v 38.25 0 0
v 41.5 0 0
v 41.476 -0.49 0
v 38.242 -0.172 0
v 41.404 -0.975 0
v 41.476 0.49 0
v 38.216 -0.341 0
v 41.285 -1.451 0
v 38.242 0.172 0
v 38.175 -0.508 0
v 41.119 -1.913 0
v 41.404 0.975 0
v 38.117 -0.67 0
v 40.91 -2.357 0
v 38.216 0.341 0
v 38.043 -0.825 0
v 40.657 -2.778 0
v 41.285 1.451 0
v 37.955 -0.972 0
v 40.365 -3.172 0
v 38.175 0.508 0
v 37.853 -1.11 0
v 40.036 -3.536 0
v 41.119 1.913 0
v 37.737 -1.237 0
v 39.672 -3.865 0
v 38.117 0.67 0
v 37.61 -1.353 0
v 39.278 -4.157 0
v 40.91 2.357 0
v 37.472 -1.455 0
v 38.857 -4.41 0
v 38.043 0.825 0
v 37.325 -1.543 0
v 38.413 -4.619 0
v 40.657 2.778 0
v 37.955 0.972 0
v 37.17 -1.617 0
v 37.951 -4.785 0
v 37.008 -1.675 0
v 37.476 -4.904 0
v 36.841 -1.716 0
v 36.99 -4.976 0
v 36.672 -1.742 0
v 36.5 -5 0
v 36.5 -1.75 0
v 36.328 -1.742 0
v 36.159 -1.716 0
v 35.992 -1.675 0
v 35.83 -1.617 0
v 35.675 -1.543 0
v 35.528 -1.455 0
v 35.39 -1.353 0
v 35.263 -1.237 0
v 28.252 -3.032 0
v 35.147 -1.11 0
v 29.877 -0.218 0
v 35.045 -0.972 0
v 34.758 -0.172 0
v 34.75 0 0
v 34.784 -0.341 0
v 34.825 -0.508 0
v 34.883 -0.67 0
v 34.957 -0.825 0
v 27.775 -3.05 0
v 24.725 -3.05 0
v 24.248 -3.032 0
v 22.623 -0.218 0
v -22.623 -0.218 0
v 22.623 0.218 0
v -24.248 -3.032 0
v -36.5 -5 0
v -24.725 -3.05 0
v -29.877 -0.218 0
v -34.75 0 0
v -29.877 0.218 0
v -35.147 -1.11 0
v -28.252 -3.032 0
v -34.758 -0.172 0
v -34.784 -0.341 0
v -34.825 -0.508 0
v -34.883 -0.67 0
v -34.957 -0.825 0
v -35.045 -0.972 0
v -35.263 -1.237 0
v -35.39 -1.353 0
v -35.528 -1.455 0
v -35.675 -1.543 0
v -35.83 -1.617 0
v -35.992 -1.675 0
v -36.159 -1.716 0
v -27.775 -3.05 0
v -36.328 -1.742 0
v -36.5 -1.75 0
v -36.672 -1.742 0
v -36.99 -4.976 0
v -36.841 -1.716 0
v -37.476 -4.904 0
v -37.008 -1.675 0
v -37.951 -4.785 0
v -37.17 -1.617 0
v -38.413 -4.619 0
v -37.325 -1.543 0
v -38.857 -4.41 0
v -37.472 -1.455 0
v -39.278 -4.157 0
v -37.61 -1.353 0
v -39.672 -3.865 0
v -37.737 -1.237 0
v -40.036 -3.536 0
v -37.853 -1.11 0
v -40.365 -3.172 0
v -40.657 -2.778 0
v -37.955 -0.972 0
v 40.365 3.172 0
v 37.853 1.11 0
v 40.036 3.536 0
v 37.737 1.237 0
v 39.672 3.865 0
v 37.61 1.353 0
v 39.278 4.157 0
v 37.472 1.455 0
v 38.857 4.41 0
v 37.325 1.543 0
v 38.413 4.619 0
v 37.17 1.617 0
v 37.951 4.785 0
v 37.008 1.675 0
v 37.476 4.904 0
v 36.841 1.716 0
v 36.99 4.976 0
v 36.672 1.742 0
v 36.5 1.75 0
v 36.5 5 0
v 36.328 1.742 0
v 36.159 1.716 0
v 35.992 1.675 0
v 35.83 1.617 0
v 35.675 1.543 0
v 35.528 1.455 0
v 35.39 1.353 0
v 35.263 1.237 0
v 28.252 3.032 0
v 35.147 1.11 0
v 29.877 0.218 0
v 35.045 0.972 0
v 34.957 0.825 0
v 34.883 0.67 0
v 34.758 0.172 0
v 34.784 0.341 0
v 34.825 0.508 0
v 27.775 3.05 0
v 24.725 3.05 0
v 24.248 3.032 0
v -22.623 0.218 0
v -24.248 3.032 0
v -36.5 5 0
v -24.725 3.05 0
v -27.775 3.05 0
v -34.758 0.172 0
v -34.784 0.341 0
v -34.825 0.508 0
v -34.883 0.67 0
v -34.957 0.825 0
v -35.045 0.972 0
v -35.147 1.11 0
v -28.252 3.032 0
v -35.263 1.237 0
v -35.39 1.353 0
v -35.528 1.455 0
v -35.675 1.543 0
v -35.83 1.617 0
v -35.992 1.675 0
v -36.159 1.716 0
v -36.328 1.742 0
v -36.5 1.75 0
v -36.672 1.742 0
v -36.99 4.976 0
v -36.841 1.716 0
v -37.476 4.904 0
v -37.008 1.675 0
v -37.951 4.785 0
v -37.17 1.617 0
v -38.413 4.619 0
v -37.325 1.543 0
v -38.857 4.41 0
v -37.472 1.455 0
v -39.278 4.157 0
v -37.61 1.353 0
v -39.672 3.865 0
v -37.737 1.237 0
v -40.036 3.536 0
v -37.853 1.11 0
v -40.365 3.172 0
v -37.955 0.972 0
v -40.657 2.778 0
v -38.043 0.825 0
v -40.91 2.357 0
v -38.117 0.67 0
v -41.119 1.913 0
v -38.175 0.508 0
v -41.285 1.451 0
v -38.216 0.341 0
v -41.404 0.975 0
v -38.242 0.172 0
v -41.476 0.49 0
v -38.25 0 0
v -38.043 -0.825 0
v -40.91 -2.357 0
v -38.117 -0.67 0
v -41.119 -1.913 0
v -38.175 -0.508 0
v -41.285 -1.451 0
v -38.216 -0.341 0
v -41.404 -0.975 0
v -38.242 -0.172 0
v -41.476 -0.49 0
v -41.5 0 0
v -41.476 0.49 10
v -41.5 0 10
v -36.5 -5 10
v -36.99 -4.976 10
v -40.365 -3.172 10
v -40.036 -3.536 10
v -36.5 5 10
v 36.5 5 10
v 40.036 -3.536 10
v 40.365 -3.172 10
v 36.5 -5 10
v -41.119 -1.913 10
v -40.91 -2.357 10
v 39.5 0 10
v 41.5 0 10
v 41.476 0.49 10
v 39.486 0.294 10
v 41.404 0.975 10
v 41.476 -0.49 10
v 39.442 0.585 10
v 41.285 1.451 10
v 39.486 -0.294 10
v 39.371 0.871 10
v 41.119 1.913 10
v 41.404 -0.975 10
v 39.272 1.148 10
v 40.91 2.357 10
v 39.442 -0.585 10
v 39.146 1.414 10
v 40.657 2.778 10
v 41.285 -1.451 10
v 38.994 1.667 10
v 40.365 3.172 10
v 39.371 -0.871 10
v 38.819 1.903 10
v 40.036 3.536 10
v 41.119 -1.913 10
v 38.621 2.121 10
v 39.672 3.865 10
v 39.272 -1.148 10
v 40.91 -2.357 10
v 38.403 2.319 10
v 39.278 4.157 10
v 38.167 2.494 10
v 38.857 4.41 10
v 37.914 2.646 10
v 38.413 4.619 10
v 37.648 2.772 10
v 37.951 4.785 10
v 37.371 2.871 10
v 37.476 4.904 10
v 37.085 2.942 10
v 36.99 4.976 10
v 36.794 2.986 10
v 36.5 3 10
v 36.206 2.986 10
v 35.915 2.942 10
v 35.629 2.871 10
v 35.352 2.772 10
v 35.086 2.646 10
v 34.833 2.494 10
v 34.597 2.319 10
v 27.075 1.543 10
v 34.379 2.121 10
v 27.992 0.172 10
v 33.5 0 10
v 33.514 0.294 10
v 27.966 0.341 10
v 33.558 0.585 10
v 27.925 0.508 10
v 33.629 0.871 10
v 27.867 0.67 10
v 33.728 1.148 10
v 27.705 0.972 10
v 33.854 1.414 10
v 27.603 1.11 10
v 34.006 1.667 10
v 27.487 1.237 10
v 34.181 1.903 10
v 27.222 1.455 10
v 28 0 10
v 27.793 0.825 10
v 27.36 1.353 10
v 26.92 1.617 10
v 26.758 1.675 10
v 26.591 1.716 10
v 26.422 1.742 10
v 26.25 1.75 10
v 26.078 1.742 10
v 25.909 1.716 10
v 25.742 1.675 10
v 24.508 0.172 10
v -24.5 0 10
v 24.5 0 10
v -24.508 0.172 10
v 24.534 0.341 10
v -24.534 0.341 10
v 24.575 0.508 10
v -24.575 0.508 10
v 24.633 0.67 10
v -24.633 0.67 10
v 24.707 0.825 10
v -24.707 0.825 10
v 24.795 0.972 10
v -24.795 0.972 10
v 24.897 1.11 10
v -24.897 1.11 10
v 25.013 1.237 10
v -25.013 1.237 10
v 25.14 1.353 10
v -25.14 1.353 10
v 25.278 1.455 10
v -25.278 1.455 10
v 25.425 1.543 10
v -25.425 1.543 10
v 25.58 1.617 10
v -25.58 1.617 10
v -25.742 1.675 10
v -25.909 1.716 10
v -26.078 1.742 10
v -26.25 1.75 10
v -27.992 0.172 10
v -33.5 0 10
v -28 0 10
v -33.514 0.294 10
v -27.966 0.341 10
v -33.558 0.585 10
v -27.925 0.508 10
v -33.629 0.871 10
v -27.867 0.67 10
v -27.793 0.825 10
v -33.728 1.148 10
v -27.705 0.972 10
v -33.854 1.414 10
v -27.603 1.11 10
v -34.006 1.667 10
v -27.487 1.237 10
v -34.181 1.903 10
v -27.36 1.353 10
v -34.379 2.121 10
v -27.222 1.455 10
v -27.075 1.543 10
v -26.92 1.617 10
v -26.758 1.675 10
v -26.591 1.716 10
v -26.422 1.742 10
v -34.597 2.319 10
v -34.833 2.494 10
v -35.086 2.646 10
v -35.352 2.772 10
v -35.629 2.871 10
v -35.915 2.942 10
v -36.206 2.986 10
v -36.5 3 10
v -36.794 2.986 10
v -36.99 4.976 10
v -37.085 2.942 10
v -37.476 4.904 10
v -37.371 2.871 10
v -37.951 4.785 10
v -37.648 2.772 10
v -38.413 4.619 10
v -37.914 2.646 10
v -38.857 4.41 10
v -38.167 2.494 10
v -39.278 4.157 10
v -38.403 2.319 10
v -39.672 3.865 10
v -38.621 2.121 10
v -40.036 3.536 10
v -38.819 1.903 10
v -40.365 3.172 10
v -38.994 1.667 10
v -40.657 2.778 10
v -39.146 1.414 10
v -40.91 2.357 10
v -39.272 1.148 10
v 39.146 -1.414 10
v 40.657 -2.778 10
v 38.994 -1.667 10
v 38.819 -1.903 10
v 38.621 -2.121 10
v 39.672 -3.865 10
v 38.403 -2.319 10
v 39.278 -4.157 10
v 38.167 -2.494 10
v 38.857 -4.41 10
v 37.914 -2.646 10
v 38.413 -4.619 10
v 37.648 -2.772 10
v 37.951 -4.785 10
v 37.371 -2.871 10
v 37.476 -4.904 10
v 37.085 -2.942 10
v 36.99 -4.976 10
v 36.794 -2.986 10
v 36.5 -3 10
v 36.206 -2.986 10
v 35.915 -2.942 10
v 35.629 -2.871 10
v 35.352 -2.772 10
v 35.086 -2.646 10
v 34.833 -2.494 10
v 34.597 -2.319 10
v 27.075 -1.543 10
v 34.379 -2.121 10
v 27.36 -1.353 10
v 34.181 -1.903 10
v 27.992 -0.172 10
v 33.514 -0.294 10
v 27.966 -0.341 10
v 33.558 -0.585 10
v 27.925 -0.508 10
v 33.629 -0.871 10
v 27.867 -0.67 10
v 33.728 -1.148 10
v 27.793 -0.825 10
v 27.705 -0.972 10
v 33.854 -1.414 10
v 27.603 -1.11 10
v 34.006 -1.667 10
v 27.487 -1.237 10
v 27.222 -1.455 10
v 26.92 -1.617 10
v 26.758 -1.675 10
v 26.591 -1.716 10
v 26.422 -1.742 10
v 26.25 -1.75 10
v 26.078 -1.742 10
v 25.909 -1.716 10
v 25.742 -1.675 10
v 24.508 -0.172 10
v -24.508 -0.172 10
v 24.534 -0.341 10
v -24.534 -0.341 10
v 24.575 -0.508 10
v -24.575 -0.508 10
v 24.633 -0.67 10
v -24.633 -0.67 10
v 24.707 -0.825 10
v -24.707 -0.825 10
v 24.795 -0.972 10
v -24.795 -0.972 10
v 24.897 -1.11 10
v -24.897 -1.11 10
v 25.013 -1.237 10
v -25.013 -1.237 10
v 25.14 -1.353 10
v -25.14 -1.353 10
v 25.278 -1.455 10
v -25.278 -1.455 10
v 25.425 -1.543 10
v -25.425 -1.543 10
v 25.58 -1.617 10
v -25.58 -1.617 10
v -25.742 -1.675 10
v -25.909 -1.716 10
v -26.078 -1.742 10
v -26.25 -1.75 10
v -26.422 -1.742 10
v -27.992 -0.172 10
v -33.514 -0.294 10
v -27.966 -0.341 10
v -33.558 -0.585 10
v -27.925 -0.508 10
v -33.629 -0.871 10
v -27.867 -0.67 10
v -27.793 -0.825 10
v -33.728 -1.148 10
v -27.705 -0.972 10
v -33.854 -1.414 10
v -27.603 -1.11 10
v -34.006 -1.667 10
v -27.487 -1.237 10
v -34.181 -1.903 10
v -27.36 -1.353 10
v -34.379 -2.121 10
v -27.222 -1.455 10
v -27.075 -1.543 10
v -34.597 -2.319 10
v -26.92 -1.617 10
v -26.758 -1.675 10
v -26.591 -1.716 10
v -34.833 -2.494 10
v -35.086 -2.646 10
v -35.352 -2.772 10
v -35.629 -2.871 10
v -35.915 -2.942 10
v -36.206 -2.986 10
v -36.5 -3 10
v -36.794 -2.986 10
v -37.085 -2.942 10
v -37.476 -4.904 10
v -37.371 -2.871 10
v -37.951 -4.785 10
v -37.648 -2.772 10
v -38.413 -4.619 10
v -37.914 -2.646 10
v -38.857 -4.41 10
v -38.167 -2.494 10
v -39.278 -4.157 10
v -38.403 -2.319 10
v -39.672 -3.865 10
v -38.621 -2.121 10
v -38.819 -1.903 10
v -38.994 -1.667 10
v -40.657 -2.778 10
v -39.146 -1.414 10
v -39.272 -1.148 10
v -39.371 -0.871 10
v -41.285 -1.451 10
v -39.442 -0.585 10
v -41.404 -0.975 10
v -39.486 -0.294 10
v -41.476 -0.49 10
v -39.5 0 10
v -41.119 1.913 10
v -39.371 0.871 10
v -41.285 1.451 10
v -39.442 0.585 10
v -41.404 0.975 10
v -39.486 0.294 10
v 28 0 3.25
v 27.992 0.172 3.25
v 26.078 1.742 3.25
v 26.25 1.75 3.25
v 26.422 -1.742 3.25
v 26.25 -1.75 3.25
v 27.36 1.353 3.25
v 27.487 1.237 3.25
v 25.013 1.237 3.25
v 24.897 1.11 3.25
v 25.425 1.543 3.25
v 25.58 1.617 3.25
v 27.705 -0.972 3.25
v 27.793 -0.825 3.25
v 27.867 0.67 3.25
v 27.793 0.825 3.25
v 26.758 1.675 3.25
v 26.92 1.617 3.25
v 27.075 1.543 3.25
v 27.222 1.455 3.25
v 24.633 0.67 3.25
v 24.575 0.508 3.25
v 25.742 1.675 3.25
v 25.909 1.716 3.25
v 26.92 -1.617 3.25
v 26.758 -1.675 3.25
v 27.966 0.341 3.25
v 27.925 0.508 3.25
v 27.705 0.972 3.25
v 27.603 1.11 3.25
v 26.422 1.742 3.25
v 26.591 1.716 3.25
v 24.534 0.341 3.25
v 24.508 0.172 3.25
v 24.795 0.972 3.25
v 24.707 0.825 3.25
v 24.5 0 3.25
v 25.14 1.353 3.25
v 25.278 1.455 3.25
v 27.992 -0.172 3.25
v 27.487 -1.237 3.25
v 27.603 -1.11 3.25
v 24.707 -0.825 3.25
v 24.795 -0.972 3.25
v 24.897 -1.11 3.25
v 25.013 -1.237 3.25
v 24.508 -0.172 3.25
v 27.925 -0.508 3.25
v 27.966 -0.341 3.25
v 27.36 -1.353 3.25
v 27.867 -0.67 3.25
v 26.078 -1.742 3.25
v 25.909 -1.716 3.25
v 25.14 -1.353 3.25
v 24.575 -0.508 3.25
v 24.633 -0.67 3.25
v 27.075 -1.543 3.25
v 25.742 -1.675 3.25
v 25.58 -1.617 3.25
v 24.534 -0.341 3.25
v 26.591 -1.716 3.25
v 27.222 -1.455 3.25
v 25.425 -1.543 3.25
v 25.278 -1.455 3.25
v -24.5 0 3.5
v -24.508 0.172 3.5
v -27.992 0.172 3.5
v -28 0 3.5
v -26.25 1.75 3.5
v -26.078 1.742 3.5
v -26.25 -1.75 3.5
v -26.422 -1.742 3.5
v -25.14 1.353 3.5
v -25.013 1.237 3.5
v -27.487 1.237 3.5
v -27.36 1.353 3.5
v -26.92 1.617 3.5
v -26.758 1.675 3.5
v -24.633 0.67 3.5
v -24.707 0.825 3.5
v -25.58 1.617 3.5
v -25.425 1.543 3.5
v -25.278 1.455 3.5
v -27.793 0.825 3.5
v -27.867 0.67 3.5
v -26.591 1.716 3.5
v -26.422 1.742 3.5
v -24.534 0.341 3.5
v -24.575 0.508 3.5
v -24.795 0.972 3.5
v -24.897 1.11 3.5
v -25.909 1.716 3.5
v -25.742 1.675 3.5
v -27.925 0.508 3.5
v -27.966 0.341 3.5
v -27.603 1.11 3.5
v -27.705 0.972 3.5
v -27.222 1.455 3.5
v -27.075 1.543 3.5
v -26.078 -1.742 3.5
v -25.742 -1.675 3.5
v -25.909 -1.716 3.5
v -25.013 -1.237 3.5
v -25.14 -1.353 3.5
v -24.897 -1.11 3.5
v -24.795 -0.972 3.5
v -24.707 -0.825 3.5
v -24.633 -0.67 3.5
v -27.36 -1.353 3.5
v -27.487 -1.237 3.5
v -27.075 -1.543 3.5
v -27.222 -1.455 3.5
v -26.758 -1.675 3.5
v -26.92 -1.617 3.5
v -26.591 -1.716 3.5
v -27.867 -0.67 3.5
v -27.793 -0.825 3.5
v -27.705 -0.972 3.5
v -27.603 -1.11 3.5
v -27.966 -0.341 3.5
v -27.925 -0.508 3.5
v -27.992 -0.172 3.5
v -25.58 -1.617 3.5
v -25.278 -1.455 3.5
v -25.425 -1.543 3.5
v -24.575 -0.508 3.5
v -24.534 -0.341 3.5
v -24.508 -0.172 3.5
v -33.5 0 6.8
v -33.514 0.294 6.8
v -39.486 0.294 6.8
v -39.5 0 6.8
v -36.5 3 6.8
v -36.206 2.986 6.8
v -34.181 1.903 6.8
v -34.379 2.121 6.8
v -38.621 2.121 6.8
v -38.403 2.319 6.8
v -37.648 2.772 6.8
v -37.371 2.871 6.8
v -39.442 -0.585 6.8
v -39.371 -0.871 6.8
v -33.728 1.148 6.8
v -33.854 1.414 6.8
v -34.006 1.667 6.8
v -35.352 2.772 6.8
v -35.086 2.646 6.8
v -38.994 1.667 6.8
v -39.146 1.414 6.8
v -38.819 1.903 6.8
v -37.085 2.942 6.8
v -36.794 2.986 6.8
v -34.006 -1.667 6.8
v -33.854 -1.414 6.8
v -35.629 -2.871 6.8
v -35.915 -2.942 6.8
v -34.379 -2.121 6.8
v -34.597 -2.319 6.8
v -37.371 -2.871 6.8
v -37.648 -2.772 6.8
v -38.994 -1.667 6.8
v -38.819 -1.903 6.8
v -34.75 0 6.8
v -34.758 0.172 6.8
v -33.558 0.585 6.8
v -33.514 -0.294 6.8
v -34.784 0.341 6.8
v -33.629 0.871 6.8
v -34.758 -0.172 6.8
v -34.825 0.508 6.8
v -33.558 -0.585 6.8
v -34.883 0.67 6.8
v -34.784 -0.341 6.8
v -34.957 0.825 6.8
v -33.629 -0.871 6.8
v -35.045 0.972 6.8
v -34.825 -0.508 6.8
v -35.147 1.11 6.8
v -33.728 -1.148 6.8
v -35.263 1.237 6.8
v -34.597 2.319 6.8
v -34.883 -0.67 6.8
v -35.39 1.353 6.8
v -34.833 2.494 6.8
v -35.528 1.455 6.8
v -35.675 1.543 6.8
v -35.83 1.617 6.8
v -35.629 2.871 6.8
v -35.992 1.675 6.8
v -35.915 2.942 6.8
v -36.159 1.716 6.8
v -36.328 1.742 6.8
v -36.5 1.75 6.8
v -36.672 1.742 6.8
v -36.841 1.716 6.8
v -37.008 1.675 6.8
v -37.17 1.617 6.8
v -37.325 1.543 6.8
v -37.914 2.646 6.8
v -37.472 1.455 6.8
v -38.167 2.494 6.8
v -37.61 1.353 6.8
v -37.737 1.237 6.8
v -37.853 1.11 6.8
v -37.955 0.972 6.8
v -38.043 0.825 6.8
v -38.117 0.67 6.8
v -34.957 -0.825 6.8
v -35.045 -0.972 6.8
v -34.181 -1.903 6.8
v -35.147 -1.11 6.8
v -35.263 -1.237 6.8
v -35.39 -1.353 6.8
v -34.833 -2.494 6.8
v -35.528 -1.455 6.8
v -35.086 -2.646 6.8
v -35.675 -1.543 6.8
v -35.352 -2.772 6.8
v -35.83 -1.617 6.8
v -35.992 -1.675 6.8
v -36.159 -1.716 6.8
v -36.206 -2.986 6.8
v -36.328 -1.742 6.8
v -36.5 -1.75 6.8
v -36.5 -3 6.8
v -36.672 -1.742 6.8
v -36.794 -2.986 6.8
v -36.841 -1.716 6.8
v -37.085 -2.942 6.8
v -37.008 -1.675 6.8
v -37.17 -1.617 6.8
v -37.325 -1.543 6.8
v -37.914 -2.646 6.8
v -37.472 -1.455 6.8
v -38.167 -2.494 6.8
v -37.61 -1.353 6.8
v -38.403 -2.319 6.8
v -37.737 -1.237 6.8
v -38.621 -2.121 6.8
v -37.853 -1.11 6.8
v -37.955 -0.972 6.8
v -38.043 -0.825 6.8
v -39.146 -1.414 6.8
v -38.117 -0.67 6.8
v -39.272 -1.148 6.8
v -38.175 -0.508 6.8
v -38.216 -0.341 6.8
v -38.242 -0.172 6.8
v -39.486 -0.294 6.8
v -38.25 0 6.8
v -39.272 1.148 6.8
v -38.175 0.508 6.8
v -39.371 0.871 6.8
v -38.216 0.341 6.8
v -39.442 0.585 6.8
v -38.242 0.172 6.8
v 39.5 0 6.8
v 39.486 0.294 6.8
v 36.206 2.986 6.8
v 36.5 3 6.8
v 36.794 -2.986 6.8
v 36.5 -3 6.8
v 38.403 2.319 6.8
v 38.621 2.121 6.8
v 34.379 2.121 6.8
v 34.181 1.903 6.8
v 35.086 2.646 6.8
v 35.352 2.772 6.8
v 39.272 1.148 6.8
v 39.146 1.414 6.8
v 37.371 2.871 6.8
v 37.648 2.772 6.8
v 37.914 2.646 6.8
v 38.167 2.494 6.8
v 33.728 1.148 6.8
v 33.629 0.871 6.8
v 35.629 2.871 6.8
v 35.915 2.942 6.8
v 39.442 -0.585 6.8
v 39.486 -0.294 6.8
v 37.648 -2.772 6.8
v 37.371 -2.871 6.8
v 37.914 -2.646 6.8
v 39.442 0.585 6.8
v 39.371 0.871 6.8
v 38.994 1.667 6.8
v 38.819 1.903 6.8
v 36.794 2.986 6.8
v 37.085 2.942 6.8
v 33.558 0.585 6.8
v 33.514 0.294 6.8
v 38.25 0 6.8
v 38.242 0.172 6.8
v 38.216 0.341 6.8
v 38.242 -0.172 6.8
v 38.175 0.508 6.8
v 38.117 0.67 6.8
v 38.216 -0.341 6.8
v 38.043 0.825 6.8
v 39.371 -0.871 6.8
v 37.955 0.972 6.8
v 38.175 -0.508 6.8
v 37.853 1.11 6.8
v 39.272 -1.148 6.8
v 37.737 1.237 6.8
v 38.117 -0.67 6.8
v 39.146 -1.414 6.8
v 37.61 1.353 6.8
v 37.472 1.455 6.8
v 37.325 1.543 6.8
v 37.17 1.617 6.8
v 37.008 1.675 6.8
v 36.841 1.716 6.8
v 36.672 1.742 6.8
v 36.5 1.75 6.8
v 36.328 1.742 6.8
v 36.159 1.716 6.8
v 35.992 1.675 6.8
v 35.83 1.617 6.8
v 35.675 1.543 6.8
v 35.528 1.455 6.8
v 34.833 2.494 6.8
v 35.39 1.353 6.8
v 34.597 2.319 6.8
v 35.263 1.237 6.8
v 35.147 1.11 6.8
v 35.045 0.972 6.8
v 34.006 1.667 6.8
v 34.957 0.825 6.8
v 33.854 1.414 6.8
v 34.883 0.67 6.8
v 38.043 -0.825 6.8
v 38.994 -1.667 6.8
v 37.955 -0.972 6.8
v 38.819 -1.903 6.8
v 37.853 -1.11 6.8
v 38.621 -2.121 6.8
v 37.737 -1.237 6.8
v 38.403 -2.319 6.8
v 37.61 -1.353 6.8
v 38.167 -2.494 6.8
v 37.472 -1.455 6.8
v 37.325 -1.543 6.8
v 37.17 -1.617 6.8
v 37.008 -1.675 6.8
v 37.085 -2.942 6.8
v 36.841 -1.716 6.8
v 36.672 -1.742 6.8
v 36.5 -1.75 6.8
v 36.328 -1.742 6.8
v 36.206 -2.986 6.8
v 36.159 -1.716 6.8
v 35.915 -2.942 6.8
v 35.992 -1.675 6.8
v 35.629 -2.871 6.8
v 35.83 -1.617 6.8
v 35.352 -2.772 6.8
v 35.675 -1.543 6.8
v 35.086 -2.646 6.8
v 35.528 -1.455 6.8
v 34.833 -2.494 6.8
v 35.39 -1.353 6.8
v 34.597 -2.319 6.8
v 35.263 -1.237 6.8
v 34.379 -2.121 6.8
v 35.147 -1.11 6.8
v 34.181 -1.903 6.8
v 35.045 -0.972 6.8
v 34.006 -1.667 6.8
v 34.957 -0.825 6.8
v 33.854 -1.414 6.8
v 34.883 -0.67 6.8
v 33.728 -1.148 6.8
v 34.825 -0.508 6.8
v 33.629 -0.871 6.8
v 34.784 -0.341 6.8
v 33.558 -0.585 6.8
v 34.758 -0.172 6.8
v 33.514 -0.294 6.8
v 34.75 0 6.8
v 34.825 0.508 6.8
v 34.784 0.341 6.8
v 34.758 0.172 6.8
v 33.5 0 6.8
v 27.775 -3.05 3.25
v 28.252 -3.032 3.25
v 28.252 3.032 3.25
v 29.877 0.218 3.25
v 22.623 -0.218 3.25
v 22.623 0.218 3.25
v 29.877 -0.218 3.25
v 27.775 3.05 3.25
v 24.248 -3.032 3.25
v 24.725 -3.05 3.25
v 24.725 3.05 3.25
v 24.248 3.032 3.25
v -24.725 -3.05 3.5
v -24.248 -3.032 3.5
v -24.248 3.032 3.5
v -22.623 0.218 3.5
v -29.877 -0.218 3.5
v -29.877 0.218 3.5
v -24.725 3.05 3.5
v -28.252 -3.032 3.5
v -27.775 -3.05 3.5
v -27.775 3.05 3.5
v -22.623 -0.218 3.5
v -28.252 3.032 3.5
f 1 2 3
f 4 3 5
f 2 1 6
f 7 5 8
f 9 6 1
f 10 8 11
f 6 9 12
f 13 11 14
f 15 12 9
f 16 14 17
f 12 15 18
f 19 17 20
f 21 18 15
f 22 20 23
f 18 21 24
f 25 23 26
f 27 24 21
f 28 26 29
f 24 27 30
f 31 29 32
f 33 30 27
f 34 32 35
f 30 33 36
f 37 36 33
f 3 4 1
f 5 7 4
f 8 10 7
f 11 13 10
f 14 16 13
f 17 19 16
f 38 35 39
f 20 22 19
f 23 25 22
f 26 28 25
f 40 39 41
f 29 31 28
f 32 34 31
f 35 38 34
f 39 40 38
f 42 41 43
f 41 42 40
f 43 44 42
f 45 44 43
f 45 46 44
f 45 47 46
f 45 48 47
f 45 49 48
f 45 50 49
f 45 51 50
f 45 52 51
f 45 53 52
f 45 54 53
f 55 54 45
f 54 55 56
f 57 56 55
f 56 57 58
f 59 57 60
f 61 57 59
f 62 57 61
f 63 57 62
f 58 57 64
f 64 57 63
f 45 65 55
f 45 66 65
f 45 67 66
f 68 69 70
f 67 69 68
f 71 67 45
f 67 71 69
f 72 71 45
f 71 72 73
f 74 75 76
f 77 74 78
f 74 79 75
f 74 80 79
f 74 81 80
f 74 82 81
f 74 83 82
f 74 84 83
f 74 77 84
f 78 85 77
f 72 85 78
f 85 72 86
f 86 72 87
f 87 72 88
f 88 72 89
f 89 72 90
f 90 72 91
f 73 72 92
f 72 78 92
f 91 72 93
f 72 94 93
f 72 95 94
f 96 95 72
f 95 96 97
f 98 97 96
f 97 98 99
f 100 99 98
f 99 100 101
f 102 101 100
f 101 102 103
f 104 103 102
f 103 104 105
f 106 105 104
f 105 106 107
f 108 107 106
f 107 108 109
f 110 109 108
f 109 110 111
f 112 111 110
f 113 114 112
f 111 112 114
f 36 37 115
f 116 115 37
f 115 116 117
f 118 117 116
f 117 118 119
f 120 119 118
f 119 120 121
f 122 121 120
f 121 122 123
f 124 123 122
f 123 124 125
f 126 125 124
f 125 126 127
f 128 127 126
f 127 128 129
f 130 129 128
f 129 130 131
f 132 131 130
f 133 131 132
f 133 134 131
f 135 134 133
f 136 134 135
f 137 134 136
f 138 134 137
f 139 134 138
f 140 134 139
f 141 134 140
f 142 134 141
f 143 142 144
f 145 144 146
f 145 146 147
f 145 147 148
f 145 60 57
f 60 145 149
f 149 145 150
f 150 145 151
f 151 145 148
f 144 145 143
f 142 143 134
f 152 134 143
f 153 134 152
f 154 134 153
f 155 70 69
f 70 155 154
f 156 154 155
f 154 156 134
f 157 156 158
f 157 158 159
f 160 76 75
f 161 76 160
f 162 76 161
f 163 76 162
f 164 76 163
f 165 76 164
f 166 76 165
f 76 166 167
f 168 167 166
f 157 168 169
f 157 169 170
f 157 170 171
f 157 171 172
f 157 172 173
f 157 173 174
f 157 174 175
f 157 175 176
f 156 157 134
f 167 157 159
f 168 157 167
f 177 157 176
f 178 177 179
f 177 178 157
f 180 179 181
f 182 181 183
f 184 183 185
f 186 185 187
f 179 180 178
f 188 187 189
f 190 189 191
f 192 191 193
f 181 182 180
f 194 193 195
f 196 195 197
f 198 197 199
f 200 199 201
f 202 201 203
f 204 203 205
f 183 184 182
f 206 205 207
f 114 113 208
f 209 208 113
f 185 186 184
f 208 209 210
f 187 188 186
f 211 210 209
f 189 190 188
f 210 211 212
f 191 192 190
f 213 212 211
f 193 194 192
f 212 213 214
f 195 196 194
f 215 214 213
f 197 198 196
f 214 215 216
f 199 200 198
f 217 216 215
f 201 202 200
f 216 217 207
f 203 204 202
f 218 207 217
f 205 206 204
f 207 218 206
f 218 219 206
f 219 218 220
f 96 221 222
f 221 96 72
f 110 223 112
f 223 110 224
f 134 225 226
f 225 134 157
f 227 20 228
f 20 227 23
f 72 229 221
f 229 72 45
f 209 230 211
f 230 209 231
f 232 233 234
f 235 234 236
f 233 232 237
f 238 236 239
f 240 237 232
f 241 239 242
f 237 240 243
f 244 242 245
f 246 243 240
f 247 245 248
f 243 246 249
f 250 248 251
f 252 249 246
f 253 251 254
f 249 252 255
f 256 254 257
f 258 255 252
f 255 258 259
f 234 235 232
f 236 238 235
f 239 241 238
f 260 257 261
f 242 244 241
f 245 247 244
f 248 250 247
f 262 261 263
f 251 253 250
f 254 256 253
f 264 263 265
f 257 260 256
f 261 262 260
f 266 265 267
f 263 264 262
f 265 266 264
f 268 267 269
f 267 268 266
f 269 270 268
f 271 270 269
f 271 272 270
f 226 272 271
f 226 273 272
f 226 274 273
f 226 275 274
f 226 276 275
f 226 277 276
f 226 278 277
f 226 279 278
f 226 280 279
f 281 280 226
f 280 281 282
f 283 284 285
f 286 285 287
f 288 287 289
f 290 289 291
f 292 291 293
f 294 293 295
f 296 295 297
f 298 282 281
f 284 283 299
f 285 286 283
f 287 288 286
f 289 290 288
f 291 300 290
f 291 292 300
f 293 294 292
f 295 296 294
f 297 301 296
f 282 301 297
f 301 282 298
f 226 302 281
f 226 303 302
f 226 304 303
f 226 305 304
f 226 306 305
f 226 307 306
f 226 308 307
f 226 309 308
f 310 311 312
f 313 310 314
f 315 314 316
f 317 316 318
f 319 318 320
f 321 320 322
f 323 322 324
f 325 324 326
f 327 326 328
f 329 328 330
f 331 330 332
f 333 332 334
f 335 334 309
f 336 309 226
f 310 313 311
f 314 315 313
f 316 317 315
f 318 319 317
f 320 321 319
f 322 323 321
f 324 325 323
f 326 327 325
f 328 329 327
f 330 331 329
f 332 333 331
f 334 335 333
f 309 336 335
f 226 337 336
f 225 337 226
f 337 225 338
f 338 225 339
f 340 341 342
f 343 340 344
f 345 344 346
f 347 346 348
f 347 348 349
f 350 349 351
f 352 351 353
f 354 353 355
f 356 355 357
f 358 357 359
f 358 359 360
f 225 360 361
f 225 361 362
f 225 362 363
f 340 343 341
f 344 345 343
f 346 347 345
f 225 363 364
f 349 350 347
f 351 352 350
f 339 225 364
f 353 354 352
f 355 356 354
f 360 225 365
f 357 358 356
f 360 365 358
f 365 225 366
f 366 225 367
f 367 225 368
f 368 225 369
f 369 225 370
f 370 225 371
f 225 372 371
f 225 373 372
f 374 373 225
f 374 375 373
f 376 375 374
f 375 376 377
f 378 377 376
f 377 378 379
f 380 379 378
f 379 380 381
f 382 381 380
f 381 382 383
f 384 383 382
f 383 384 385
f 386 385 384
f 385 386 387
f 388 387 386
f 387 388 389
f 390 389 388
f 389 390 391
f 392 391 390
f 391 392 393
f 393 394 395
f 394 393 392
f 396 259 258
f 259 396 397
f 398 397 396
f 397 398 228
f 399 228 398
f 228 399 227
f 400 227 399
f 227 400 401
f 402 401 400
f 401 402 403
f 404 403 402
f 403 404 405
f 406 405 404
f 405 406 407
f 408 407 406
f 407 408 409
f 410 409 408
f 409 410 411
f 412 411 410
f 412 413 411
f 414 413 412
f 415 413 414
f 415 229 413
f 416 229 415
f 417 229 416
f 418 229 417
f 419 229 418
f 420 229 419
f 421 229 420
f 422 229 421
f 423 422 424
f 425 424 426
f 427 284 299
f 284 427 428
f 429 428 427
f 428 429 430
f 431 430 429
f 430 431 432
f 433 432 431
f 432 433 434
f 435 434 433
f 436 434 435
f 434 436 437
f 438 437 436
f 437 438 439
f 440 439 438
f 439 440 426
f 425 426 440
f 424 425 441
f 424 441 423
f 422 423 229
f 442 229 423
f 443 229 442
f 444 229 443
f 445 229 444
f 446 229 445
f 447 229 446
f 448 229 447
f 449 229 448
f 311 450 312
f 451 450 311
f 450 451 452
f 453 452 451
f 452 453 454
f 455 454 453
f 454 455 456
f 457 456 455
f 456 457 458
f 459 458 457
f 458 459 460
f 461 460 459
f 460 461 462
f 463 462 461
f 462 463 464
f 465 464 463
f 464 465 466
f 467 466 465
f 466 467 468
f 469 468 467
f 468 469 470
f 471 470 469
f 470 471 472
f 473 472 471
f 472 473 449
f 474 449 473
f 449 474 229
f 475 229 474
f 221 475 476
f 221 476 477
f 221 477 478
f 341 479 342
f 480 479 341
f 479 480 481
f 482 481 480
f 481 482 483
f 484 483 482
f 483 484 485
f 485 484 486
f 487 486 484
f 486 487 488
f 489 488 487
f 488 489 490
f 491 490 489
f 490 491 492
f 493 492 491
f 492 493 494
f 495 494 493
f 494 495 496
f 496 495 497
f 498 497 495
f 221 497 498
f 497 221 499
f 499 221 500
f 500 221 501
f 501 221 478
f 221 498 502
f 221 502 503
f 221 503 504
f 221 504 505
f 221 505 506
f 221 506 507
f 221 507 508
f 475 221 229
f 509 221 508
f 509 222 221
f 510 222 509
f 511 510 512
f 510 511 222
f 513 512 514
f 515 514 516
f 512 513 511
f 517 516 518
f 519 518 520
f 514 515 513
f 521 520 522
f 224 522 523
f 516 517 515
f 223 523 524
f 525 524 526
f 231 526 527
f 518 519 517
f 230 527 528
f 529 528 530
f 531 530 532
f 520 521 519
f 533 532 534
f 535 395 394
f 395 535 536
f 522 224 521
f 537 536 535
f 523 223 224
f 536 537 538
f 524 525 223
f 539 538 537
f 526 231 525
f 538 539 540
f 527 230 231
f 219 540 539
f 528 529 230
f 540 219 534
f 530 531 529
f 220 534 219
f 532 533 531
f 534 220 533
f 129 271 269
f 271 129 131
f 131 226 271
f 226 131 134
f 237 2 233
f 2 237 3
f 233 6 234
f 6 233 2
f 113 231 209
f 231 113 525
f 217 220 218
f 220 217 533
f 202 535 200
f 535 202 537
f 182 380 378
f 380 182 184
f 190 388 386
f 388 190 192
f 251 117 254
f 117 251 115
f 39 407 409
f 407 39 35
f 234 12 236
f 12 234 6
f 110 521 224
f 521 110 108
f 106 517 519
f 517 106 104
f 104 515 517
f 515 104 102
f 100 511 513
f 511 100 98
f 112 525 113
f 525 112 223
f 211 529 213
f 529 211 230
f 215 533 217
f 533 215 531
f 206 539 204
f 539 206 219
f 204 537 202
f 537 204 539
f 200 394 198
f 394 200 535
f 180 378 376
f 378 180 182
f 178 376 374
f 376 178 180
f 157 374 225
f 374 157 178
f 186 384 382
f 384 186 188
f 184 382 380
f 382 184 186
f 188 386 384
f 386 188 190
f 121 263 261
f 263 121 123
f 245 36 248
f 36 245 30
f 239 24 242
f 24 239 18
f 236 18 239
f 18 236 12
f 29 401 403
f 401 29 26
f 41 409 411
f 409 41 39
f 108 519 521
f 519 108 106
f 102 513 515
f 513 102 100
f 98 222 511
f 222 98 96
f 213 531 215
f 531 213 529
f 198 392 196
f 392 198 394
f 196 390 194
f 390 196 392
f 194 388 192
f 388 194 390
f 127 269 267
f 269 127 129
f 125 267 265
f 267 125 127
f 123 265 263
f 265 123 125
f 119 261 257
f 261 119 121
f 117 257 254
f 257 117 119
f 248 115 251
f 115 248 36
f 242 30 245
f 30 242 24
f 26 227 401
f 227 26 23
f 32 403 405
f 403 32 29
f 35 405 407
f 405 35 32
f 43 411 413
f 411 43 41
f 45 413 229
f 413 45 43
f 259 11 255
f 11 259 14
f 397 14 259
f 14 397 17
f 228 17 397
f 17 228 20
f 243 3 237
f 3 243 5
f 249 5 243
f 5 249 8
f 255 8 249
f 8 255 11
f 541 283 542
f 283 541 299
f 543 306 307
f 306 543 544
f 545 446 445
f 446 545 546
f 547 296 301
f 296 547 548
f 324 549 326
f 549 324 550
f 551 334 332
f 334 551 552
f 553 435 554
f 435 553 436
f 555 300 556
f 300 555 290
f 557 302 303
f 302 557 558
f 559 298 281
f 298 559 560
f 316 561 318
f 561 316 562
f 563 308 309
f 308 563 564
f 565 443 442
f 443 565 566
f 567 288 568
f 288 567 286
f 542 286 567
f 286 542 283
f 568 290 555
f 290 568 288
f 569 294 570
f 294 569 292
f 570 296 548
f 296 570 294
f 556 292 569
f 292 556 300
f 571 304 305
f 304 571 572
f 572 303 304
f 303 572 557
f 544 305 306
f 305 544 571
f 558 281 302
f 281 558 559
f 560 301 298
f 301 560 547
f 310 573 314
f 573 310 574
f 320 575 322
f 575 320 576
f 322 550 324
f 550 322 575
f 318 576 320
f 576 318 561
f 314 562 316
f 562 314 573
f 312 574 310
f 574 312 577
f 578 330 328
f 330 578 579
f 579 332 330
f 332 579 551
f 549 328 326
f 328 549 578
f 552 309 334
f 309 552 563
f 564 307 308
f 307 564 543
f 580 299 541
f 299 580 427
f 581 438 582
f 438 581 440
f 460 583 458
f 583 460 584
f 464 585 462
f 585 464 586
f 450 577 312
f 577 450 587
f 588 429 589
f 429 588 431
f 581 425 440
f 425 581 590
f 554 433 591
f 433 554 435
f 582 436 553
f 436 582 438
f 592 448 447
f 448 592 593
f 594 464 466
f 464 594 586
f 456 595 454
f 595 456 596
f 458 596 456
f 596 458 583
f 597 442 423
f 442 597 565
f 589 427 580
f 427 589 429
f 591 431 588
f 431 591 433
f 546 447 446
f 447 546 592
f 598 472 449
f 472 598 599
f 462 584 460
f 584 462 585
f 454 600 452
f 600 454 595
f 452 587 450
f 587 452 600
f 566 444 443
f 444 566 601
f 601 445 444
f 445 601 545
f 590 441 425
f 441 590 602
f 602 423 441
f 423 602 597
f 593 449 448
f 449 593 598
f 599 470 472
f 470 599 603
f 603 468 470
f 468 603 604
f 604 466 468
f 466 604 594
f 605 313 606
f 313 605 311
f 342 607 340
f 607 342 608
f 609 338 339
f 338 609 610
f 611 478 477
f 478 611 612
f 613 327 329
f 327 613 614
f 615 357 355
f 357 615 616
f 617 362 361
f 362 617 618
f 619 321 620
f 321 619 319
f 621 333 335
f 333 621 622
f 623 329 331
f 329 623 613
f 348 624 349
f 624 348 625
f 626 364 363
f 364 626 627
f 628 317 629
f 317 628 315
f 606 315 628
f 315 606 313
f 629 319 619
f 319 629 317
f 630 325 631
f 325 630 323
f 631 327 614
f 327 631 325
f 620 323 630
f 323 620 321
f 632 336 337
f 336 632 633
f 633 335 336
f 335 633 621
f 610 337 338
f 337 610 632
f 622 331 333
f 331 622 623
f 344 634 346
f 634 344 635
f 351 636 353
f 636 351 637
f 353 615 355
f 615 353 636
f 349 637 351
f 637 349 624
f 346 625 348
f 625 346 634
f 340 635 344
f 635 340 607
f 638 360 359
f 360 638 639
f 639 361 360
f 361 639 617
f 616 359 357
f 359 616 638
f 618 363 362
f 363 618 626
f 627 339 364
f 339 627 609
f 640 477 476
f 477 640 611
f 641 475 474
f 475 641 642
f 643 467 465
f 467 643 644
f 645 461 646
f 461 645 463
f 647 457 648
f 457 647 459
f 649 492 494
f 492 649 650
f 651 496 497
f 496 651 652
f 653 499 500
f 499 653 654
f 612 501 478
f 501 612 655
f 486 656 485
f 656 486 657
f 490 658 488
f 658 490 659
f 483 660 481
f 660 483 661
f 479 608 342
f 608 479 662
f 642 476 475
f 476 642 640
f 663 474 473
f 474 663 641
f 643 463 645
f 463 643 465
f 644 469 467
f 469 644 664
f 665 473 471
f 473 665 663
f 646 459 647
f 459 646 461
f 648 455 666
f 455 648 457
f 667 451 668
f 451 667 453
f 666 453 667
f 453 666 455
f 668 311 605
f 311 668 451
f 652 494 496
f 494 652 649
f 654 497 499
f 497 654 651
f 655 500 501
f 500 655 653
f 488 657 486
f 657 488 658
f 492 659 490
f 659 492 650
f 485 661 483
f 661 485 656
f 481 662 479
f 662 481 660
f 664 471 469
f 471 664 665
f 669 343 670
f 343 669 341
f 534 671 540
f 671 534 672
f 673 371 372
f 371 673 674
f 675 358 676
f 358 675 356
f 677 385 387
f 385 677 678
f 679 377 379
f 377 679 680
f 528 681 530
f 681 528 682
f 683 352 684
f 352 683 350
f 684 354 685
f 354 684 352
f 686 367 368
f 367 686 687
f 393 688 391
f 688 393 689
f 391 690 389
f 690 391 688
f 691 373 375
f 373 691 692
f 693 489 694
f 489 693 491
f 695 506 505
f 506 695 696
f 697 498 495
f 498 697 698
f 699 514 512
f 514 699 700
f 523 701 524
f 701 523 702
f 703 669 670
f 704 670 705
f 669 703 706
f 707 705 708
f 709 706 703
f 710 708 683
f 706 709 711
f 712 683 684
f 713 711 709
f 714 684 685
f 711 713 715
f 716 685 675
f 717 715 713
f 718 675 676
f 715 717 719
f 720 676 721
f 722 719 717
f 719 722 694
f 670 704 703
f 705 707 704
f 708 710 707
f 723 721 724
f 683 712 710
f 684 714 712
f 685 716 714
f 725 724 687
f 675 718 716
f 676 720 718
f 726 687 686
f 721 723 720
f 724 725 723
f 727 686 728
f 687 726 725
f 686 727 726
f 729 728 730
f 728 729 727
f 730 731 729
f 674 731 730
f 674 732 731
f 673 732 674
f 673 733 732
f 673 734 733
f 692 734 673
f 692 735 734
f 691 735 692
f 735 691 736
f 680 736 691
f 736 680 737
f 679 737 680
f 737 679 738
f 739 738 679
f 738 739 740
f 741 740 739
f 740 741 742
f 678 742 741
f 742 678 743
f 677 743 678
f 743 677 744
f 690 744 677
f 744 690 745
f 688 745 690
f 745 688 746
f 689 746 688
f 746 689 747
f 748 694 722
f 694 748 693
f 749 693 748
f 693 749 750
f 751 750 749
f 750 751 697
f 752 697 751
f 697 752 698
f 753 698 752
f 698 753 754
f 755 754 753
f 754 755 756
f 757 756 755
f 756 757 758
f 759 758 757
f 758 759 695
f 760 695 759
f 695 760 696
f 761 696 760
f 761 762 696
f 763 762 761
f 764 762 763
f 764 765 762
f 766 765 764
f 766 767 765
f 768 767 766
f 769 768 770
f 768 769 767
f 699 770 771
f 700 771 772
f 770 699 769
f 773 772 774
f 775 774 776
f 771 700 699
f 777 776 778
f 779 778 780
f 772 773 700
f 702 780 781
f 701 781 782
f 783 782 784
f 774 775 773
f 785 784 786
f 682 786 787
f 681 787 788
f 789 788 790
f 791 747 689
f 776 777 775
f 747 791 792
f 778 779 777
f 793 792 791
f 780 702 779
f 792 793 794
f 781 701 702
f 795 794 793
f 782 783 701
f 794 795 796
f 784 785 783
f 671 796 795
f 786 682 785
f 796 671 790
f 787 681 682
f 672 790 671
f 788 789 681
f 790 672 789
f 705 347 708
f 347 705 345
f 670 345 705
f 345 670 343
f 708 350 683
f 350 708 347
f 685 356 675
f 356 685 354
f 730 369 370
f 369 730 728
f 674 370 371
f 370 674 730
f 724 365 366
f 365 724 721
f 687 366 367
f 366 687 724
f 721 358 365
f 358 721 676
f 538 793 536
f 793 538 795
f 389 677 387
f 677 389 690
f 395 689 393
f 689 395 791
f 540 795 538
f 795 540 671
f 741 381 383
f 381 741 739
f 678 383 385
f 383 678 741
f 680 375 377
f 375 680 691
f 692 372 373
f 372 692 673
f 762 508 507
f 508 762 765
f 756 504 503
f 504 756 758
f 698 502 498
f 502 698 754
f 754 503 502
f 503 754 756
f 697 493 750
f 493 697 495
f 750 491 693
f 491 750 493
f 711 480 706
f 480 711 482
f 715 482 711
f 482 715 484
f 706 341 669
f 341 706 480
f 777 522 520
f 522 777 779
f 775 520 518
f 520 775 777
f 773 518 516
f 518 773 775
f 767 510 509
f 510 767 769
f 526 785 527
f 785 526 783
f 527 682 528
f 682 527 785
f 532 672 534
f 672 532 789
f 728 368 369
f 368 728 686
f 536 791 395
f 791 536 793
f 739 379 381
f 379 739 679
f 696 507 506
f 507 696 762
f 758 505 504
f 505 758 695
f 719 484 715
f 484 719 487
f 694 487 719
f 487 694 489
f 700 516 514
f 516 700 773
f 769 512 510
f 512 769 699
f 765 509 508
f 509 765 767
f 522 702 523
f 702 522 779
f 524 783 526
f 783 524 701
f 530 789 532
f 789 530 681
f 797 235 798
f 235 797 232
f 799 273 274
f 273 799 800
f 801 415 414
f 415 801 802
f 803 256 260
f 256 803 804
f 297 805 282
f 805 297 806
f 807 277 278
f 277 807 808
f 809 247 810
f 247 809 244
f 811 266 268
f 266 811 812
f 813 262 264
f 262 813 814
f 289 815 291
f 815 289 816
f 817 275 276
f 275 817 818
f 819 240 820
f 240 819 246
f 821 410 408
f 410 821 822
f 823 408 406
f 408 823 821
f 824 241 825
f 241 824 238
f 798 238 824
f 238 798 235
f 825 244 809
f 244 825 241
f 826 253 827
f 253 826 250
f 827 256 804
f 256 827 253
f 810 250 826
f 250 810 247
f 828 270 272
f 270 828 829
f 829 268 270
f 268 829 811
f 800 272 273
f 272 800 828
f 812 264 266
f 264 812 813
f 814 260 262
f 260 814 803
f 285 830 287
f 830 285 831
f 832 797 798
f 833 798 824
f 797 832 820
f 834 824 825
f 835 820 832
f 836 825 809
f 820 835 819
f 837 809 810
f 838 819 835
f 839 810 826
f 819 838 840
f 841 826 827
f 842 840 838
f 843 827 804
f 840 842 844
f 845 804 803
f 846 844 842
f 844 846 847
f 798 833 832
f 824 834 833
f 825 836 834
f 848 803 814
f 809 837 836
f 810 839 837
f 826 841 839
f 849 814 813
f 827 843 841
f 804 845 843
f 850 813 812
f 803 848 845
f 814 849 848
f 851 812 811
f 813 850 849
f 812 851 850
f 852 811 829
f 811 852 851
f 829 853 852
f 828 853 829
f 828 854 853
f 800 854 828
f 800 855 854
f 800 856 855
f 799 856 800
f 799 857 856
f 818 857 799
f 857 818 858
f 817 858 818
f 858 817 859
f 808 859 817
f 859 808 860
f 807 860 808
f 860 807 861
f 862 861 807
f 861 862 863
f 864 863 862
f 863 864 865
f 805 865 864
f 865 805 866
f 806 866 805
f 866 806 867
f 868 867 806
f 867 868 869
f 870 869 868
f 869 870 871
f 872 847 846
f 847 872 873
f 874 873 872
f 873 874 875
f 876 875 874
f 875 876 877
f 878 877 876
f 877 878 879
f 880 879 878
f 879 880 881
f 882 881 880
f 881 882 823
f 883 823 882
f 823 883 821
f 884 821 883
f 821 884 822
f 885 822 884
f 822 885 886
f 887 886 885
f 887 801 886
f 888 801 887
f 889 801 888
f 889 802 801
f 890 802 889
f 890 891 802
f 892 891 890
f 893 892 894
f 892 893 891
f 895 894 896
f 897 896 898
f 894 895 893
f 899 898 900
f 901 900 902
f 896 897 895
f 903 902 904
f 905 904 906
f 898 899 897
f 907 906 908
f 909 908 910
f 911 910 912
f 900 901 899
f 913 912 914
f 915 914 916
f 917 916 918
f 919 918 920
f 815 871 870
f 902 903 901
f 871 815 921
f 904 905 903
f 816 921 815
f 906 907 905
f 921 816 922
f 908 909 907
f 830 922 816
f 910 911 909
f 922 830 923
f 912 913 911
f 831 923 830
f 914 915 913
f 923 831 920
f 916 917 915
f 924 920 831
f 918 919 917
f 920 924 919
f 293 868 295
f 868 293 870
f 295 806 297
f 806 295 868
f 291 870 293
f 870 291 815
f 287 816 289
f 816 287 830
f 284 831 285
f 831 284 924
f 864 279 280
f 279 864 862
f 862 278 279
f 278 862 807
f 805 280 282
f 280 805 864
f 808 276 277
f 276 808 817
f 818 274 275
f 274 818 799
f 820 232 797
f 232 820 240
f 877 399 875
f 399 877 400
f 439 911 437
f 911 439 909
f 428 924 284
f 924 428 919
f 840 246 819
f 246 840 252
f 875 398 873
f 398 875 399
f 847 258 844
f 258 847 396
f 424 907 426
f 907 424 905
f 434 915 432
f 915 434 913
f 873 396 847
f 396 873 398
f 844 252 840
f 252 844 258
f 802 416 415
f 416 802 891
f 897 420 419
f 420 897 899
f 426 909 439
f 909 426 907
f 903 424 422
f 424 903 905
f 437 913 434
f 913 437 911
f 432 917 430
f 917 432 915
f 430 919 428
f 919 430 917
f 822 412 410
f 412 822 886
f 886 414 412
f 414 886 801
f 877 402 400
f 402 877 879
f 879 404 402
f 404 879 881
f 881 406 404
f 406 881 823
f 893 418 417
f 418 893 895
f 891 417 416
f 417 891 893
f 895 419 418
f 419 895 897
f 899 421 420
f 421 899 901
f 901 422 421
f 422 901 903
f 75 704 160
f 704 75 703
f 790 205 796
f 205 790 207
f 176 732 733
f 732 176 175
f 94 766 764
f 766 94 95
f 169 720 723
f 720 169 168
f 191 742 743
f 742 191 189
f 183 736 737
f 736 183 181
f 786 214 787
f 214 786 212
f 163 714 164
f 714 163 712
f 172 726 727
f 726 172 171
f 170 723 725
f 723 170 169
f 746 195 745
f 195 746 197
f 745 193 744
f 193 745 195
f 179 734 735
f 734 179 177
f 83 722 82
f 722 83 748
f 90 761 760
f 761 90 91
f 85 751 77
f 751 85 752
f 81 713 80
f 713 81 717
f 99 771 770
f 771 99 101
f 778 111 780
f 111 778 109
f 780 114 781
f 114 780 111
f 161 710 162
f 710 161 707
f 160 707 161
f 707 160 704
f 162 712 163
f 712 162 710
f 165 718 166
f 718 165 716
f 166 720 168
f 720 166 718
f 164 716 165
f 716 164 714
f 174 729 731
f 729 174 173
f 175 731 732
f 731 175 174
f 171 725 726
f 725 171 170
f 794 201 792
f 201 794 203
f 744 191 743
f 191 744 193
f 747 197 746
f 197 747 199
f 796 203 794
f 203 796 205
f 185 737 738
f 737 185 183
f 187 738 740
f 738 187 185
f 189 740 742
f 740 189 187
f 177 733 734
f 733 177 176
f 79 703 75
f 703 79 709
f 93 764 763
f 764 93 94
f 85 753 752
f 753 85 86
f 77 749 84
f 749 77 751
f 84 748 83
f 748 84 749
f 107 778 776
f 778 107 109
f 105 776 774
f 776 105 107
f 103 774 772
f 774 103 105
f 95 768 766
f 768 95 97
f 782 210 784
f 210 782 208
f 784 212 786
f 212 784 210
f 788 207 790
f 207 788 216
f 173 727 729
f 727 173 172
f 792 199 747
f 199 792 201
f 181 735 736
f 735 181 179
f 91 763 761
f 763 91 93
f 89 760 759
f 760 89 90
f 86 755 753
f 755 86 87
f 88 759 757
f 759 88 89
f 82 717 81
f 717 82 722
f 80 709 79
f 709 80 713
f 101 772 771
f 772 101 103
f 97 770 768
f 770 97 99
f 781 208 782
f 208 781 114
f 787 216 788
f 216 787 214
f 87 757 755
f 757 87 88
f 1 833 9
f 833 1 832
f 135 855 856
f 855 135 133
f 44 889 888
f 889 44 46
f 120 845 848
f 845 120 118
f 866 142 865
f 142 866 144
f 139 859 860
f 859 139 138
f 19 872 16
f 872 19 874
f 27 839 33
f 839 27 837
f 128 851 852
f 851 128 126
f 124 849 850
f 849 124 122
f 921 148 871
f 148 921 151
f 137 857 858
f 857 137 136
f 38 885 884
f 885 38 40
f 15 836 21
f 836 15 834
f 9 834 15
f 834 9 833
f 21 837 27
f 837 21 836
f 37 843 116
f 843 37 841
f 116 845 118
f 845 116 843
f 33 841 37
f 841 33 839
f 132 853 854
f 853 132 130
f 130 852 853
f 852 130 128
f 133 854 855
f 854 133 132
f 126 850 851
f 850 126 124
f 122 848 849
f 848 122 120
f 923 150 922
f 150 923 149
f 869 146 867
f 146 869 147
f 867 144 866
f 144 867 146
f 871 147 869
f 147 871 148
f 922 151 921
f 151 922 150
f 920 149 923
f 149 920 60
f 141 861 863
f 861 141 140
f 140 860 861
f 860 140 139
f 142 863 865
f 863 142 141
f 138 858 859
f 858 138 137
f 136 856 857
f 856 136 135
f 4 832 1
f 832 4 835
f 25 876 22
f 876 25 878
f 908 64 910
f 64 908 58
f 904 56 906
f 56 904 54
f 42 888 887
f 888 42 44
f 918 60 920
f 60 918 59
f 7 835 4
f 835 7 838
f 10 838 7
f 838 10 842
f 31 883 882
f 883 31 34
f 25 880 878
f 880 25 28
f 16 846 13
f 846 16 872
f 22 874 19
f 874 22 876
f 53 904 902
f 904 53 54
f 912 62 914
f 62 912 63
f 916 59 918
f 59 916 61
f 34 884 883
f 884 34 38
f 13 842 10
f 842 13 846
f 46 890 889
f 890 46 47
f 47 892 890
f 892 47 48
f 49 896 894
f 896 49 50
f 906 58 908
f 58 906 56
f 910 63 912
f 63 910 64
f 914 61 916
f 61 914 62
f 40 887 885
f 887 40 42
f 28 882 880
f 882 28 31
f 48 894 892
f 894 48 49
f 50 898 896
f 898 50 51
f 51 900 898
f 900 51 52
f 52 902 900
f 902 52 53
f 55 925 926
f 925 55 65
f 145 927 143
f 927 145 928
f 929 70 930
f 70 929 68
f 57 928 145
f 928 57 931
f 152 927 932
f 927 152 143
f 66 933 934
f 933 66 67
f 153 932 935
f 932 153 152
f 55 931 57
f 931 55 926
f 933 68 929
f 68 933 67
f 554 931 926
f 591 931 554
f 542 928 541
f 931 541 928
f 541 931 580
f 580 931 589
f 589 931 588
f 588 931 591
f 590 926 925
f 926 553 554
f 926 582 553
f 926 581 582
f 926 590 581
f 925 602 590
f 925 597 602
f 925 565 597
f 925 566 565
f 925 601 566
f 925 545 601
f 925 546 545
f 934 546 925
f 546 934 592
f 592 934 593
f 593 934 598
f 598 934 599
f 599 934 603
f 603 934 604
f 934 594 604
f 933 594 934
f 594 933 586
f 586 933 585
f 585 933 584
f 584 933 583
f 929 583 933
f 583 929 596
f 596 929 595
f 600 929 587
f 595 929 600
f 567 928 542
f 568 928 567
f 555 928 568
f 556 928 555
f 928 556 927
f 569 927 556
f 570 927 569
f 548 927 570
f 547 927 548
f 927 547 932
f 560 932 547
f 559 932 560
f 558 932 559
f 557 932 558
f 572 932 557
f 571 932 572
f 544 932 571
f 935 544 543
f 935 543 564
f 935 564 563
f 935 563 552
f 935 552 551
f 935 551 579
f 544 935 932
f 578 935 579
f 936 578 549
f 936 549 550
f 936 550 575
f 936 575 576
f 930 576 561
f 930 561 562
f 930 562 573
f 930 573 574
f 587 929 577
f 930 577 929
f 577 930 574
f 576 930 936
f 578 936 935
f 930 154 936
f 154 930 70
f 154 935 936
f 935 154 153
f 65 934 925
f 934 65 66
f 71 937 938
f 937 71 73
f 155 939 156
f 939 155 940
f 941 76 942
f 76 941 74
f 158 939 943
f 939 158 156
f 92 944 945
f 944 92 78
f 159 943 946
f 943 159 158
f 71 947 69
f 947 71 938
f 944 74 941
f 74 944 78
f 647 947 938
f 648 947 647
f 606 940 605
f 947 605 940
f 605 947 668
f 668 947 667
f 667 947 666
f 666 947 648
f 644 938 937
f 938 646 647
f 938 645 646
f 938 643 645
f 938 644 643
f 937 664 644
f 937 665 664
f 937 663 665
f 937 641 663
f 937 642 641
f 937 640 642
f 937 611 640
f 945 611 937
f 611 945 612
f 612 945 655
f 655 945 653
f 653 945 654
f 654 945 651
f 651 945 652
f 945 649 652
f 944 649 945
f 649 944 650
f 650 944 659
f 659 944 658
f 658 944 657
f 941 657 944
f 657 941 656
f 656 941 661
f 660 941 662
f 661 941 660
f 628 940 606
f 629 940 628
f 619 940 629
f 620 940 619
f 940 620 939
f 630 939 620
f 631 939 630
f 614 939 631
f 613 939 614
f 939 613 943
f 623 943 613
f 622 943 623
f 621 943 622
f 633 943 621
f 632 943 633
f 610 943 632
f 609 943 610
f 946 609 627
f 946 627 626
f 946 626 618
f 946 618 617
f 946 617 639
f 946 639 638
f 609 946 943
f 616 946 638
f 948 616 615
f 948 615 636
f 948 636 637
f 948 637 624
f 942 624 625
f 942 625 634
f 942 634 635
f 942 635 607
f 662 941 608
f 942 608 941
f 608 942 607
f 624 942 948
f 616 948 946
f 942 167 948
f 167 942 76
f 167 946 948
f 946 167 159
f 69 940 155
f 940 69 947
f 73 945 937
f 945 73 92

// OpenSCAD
$fn = 64;

pcb_screw_hole_dist = 56-3.5;

difference() {
	hull() {
		translate([-73/2,0,0]) cylinder(r=5,10);
		translate([73/2,0,0]) cylinder(r=5,10);	
	}

	translate([pcb_screw_hole_dist/2,0,-1]) cylinder(r=3.5/2,20);
	translate([-pcb_screw_hole_dist/2,0,-1]) cylinder(r=3.5/2,20);

	translate([-73/2,0,6.8]) cylinder(r=3,3.3);
	translate([73/2,0,6.8]) cylinder(r=3,3.3);	

	translate([-73/2,0,-1]) cylinder(r=3.5/2,10);
	translate([73/2,0,-1]) cylinder(r=3.5/2,10);

	translate([pcb_screw_hole_dist/2,0,1.5])
	hull() {
		cube(size=[6.1/2,6.1,3.5],center=true);
		rotate([0,0,60]) cube(size=[6.5/2,6.5,3.5],center=true);
		rotate([0,0,-60]) cube(size=[6.5/2,6.5,3.5],center=true);
	}

	translate([-pcb_screw_hole_dist/2,0,1.5])
	hull() {
		cube(size=[6.1/2,6.1,4],center=true);
		rotate([0,0,60]) cube(size=[6.5/2,6.5,4],center=true);
		rotate([0,0,-60]) cube(size=[6.5/2,6.5,4],center=true);
	}
	
}
